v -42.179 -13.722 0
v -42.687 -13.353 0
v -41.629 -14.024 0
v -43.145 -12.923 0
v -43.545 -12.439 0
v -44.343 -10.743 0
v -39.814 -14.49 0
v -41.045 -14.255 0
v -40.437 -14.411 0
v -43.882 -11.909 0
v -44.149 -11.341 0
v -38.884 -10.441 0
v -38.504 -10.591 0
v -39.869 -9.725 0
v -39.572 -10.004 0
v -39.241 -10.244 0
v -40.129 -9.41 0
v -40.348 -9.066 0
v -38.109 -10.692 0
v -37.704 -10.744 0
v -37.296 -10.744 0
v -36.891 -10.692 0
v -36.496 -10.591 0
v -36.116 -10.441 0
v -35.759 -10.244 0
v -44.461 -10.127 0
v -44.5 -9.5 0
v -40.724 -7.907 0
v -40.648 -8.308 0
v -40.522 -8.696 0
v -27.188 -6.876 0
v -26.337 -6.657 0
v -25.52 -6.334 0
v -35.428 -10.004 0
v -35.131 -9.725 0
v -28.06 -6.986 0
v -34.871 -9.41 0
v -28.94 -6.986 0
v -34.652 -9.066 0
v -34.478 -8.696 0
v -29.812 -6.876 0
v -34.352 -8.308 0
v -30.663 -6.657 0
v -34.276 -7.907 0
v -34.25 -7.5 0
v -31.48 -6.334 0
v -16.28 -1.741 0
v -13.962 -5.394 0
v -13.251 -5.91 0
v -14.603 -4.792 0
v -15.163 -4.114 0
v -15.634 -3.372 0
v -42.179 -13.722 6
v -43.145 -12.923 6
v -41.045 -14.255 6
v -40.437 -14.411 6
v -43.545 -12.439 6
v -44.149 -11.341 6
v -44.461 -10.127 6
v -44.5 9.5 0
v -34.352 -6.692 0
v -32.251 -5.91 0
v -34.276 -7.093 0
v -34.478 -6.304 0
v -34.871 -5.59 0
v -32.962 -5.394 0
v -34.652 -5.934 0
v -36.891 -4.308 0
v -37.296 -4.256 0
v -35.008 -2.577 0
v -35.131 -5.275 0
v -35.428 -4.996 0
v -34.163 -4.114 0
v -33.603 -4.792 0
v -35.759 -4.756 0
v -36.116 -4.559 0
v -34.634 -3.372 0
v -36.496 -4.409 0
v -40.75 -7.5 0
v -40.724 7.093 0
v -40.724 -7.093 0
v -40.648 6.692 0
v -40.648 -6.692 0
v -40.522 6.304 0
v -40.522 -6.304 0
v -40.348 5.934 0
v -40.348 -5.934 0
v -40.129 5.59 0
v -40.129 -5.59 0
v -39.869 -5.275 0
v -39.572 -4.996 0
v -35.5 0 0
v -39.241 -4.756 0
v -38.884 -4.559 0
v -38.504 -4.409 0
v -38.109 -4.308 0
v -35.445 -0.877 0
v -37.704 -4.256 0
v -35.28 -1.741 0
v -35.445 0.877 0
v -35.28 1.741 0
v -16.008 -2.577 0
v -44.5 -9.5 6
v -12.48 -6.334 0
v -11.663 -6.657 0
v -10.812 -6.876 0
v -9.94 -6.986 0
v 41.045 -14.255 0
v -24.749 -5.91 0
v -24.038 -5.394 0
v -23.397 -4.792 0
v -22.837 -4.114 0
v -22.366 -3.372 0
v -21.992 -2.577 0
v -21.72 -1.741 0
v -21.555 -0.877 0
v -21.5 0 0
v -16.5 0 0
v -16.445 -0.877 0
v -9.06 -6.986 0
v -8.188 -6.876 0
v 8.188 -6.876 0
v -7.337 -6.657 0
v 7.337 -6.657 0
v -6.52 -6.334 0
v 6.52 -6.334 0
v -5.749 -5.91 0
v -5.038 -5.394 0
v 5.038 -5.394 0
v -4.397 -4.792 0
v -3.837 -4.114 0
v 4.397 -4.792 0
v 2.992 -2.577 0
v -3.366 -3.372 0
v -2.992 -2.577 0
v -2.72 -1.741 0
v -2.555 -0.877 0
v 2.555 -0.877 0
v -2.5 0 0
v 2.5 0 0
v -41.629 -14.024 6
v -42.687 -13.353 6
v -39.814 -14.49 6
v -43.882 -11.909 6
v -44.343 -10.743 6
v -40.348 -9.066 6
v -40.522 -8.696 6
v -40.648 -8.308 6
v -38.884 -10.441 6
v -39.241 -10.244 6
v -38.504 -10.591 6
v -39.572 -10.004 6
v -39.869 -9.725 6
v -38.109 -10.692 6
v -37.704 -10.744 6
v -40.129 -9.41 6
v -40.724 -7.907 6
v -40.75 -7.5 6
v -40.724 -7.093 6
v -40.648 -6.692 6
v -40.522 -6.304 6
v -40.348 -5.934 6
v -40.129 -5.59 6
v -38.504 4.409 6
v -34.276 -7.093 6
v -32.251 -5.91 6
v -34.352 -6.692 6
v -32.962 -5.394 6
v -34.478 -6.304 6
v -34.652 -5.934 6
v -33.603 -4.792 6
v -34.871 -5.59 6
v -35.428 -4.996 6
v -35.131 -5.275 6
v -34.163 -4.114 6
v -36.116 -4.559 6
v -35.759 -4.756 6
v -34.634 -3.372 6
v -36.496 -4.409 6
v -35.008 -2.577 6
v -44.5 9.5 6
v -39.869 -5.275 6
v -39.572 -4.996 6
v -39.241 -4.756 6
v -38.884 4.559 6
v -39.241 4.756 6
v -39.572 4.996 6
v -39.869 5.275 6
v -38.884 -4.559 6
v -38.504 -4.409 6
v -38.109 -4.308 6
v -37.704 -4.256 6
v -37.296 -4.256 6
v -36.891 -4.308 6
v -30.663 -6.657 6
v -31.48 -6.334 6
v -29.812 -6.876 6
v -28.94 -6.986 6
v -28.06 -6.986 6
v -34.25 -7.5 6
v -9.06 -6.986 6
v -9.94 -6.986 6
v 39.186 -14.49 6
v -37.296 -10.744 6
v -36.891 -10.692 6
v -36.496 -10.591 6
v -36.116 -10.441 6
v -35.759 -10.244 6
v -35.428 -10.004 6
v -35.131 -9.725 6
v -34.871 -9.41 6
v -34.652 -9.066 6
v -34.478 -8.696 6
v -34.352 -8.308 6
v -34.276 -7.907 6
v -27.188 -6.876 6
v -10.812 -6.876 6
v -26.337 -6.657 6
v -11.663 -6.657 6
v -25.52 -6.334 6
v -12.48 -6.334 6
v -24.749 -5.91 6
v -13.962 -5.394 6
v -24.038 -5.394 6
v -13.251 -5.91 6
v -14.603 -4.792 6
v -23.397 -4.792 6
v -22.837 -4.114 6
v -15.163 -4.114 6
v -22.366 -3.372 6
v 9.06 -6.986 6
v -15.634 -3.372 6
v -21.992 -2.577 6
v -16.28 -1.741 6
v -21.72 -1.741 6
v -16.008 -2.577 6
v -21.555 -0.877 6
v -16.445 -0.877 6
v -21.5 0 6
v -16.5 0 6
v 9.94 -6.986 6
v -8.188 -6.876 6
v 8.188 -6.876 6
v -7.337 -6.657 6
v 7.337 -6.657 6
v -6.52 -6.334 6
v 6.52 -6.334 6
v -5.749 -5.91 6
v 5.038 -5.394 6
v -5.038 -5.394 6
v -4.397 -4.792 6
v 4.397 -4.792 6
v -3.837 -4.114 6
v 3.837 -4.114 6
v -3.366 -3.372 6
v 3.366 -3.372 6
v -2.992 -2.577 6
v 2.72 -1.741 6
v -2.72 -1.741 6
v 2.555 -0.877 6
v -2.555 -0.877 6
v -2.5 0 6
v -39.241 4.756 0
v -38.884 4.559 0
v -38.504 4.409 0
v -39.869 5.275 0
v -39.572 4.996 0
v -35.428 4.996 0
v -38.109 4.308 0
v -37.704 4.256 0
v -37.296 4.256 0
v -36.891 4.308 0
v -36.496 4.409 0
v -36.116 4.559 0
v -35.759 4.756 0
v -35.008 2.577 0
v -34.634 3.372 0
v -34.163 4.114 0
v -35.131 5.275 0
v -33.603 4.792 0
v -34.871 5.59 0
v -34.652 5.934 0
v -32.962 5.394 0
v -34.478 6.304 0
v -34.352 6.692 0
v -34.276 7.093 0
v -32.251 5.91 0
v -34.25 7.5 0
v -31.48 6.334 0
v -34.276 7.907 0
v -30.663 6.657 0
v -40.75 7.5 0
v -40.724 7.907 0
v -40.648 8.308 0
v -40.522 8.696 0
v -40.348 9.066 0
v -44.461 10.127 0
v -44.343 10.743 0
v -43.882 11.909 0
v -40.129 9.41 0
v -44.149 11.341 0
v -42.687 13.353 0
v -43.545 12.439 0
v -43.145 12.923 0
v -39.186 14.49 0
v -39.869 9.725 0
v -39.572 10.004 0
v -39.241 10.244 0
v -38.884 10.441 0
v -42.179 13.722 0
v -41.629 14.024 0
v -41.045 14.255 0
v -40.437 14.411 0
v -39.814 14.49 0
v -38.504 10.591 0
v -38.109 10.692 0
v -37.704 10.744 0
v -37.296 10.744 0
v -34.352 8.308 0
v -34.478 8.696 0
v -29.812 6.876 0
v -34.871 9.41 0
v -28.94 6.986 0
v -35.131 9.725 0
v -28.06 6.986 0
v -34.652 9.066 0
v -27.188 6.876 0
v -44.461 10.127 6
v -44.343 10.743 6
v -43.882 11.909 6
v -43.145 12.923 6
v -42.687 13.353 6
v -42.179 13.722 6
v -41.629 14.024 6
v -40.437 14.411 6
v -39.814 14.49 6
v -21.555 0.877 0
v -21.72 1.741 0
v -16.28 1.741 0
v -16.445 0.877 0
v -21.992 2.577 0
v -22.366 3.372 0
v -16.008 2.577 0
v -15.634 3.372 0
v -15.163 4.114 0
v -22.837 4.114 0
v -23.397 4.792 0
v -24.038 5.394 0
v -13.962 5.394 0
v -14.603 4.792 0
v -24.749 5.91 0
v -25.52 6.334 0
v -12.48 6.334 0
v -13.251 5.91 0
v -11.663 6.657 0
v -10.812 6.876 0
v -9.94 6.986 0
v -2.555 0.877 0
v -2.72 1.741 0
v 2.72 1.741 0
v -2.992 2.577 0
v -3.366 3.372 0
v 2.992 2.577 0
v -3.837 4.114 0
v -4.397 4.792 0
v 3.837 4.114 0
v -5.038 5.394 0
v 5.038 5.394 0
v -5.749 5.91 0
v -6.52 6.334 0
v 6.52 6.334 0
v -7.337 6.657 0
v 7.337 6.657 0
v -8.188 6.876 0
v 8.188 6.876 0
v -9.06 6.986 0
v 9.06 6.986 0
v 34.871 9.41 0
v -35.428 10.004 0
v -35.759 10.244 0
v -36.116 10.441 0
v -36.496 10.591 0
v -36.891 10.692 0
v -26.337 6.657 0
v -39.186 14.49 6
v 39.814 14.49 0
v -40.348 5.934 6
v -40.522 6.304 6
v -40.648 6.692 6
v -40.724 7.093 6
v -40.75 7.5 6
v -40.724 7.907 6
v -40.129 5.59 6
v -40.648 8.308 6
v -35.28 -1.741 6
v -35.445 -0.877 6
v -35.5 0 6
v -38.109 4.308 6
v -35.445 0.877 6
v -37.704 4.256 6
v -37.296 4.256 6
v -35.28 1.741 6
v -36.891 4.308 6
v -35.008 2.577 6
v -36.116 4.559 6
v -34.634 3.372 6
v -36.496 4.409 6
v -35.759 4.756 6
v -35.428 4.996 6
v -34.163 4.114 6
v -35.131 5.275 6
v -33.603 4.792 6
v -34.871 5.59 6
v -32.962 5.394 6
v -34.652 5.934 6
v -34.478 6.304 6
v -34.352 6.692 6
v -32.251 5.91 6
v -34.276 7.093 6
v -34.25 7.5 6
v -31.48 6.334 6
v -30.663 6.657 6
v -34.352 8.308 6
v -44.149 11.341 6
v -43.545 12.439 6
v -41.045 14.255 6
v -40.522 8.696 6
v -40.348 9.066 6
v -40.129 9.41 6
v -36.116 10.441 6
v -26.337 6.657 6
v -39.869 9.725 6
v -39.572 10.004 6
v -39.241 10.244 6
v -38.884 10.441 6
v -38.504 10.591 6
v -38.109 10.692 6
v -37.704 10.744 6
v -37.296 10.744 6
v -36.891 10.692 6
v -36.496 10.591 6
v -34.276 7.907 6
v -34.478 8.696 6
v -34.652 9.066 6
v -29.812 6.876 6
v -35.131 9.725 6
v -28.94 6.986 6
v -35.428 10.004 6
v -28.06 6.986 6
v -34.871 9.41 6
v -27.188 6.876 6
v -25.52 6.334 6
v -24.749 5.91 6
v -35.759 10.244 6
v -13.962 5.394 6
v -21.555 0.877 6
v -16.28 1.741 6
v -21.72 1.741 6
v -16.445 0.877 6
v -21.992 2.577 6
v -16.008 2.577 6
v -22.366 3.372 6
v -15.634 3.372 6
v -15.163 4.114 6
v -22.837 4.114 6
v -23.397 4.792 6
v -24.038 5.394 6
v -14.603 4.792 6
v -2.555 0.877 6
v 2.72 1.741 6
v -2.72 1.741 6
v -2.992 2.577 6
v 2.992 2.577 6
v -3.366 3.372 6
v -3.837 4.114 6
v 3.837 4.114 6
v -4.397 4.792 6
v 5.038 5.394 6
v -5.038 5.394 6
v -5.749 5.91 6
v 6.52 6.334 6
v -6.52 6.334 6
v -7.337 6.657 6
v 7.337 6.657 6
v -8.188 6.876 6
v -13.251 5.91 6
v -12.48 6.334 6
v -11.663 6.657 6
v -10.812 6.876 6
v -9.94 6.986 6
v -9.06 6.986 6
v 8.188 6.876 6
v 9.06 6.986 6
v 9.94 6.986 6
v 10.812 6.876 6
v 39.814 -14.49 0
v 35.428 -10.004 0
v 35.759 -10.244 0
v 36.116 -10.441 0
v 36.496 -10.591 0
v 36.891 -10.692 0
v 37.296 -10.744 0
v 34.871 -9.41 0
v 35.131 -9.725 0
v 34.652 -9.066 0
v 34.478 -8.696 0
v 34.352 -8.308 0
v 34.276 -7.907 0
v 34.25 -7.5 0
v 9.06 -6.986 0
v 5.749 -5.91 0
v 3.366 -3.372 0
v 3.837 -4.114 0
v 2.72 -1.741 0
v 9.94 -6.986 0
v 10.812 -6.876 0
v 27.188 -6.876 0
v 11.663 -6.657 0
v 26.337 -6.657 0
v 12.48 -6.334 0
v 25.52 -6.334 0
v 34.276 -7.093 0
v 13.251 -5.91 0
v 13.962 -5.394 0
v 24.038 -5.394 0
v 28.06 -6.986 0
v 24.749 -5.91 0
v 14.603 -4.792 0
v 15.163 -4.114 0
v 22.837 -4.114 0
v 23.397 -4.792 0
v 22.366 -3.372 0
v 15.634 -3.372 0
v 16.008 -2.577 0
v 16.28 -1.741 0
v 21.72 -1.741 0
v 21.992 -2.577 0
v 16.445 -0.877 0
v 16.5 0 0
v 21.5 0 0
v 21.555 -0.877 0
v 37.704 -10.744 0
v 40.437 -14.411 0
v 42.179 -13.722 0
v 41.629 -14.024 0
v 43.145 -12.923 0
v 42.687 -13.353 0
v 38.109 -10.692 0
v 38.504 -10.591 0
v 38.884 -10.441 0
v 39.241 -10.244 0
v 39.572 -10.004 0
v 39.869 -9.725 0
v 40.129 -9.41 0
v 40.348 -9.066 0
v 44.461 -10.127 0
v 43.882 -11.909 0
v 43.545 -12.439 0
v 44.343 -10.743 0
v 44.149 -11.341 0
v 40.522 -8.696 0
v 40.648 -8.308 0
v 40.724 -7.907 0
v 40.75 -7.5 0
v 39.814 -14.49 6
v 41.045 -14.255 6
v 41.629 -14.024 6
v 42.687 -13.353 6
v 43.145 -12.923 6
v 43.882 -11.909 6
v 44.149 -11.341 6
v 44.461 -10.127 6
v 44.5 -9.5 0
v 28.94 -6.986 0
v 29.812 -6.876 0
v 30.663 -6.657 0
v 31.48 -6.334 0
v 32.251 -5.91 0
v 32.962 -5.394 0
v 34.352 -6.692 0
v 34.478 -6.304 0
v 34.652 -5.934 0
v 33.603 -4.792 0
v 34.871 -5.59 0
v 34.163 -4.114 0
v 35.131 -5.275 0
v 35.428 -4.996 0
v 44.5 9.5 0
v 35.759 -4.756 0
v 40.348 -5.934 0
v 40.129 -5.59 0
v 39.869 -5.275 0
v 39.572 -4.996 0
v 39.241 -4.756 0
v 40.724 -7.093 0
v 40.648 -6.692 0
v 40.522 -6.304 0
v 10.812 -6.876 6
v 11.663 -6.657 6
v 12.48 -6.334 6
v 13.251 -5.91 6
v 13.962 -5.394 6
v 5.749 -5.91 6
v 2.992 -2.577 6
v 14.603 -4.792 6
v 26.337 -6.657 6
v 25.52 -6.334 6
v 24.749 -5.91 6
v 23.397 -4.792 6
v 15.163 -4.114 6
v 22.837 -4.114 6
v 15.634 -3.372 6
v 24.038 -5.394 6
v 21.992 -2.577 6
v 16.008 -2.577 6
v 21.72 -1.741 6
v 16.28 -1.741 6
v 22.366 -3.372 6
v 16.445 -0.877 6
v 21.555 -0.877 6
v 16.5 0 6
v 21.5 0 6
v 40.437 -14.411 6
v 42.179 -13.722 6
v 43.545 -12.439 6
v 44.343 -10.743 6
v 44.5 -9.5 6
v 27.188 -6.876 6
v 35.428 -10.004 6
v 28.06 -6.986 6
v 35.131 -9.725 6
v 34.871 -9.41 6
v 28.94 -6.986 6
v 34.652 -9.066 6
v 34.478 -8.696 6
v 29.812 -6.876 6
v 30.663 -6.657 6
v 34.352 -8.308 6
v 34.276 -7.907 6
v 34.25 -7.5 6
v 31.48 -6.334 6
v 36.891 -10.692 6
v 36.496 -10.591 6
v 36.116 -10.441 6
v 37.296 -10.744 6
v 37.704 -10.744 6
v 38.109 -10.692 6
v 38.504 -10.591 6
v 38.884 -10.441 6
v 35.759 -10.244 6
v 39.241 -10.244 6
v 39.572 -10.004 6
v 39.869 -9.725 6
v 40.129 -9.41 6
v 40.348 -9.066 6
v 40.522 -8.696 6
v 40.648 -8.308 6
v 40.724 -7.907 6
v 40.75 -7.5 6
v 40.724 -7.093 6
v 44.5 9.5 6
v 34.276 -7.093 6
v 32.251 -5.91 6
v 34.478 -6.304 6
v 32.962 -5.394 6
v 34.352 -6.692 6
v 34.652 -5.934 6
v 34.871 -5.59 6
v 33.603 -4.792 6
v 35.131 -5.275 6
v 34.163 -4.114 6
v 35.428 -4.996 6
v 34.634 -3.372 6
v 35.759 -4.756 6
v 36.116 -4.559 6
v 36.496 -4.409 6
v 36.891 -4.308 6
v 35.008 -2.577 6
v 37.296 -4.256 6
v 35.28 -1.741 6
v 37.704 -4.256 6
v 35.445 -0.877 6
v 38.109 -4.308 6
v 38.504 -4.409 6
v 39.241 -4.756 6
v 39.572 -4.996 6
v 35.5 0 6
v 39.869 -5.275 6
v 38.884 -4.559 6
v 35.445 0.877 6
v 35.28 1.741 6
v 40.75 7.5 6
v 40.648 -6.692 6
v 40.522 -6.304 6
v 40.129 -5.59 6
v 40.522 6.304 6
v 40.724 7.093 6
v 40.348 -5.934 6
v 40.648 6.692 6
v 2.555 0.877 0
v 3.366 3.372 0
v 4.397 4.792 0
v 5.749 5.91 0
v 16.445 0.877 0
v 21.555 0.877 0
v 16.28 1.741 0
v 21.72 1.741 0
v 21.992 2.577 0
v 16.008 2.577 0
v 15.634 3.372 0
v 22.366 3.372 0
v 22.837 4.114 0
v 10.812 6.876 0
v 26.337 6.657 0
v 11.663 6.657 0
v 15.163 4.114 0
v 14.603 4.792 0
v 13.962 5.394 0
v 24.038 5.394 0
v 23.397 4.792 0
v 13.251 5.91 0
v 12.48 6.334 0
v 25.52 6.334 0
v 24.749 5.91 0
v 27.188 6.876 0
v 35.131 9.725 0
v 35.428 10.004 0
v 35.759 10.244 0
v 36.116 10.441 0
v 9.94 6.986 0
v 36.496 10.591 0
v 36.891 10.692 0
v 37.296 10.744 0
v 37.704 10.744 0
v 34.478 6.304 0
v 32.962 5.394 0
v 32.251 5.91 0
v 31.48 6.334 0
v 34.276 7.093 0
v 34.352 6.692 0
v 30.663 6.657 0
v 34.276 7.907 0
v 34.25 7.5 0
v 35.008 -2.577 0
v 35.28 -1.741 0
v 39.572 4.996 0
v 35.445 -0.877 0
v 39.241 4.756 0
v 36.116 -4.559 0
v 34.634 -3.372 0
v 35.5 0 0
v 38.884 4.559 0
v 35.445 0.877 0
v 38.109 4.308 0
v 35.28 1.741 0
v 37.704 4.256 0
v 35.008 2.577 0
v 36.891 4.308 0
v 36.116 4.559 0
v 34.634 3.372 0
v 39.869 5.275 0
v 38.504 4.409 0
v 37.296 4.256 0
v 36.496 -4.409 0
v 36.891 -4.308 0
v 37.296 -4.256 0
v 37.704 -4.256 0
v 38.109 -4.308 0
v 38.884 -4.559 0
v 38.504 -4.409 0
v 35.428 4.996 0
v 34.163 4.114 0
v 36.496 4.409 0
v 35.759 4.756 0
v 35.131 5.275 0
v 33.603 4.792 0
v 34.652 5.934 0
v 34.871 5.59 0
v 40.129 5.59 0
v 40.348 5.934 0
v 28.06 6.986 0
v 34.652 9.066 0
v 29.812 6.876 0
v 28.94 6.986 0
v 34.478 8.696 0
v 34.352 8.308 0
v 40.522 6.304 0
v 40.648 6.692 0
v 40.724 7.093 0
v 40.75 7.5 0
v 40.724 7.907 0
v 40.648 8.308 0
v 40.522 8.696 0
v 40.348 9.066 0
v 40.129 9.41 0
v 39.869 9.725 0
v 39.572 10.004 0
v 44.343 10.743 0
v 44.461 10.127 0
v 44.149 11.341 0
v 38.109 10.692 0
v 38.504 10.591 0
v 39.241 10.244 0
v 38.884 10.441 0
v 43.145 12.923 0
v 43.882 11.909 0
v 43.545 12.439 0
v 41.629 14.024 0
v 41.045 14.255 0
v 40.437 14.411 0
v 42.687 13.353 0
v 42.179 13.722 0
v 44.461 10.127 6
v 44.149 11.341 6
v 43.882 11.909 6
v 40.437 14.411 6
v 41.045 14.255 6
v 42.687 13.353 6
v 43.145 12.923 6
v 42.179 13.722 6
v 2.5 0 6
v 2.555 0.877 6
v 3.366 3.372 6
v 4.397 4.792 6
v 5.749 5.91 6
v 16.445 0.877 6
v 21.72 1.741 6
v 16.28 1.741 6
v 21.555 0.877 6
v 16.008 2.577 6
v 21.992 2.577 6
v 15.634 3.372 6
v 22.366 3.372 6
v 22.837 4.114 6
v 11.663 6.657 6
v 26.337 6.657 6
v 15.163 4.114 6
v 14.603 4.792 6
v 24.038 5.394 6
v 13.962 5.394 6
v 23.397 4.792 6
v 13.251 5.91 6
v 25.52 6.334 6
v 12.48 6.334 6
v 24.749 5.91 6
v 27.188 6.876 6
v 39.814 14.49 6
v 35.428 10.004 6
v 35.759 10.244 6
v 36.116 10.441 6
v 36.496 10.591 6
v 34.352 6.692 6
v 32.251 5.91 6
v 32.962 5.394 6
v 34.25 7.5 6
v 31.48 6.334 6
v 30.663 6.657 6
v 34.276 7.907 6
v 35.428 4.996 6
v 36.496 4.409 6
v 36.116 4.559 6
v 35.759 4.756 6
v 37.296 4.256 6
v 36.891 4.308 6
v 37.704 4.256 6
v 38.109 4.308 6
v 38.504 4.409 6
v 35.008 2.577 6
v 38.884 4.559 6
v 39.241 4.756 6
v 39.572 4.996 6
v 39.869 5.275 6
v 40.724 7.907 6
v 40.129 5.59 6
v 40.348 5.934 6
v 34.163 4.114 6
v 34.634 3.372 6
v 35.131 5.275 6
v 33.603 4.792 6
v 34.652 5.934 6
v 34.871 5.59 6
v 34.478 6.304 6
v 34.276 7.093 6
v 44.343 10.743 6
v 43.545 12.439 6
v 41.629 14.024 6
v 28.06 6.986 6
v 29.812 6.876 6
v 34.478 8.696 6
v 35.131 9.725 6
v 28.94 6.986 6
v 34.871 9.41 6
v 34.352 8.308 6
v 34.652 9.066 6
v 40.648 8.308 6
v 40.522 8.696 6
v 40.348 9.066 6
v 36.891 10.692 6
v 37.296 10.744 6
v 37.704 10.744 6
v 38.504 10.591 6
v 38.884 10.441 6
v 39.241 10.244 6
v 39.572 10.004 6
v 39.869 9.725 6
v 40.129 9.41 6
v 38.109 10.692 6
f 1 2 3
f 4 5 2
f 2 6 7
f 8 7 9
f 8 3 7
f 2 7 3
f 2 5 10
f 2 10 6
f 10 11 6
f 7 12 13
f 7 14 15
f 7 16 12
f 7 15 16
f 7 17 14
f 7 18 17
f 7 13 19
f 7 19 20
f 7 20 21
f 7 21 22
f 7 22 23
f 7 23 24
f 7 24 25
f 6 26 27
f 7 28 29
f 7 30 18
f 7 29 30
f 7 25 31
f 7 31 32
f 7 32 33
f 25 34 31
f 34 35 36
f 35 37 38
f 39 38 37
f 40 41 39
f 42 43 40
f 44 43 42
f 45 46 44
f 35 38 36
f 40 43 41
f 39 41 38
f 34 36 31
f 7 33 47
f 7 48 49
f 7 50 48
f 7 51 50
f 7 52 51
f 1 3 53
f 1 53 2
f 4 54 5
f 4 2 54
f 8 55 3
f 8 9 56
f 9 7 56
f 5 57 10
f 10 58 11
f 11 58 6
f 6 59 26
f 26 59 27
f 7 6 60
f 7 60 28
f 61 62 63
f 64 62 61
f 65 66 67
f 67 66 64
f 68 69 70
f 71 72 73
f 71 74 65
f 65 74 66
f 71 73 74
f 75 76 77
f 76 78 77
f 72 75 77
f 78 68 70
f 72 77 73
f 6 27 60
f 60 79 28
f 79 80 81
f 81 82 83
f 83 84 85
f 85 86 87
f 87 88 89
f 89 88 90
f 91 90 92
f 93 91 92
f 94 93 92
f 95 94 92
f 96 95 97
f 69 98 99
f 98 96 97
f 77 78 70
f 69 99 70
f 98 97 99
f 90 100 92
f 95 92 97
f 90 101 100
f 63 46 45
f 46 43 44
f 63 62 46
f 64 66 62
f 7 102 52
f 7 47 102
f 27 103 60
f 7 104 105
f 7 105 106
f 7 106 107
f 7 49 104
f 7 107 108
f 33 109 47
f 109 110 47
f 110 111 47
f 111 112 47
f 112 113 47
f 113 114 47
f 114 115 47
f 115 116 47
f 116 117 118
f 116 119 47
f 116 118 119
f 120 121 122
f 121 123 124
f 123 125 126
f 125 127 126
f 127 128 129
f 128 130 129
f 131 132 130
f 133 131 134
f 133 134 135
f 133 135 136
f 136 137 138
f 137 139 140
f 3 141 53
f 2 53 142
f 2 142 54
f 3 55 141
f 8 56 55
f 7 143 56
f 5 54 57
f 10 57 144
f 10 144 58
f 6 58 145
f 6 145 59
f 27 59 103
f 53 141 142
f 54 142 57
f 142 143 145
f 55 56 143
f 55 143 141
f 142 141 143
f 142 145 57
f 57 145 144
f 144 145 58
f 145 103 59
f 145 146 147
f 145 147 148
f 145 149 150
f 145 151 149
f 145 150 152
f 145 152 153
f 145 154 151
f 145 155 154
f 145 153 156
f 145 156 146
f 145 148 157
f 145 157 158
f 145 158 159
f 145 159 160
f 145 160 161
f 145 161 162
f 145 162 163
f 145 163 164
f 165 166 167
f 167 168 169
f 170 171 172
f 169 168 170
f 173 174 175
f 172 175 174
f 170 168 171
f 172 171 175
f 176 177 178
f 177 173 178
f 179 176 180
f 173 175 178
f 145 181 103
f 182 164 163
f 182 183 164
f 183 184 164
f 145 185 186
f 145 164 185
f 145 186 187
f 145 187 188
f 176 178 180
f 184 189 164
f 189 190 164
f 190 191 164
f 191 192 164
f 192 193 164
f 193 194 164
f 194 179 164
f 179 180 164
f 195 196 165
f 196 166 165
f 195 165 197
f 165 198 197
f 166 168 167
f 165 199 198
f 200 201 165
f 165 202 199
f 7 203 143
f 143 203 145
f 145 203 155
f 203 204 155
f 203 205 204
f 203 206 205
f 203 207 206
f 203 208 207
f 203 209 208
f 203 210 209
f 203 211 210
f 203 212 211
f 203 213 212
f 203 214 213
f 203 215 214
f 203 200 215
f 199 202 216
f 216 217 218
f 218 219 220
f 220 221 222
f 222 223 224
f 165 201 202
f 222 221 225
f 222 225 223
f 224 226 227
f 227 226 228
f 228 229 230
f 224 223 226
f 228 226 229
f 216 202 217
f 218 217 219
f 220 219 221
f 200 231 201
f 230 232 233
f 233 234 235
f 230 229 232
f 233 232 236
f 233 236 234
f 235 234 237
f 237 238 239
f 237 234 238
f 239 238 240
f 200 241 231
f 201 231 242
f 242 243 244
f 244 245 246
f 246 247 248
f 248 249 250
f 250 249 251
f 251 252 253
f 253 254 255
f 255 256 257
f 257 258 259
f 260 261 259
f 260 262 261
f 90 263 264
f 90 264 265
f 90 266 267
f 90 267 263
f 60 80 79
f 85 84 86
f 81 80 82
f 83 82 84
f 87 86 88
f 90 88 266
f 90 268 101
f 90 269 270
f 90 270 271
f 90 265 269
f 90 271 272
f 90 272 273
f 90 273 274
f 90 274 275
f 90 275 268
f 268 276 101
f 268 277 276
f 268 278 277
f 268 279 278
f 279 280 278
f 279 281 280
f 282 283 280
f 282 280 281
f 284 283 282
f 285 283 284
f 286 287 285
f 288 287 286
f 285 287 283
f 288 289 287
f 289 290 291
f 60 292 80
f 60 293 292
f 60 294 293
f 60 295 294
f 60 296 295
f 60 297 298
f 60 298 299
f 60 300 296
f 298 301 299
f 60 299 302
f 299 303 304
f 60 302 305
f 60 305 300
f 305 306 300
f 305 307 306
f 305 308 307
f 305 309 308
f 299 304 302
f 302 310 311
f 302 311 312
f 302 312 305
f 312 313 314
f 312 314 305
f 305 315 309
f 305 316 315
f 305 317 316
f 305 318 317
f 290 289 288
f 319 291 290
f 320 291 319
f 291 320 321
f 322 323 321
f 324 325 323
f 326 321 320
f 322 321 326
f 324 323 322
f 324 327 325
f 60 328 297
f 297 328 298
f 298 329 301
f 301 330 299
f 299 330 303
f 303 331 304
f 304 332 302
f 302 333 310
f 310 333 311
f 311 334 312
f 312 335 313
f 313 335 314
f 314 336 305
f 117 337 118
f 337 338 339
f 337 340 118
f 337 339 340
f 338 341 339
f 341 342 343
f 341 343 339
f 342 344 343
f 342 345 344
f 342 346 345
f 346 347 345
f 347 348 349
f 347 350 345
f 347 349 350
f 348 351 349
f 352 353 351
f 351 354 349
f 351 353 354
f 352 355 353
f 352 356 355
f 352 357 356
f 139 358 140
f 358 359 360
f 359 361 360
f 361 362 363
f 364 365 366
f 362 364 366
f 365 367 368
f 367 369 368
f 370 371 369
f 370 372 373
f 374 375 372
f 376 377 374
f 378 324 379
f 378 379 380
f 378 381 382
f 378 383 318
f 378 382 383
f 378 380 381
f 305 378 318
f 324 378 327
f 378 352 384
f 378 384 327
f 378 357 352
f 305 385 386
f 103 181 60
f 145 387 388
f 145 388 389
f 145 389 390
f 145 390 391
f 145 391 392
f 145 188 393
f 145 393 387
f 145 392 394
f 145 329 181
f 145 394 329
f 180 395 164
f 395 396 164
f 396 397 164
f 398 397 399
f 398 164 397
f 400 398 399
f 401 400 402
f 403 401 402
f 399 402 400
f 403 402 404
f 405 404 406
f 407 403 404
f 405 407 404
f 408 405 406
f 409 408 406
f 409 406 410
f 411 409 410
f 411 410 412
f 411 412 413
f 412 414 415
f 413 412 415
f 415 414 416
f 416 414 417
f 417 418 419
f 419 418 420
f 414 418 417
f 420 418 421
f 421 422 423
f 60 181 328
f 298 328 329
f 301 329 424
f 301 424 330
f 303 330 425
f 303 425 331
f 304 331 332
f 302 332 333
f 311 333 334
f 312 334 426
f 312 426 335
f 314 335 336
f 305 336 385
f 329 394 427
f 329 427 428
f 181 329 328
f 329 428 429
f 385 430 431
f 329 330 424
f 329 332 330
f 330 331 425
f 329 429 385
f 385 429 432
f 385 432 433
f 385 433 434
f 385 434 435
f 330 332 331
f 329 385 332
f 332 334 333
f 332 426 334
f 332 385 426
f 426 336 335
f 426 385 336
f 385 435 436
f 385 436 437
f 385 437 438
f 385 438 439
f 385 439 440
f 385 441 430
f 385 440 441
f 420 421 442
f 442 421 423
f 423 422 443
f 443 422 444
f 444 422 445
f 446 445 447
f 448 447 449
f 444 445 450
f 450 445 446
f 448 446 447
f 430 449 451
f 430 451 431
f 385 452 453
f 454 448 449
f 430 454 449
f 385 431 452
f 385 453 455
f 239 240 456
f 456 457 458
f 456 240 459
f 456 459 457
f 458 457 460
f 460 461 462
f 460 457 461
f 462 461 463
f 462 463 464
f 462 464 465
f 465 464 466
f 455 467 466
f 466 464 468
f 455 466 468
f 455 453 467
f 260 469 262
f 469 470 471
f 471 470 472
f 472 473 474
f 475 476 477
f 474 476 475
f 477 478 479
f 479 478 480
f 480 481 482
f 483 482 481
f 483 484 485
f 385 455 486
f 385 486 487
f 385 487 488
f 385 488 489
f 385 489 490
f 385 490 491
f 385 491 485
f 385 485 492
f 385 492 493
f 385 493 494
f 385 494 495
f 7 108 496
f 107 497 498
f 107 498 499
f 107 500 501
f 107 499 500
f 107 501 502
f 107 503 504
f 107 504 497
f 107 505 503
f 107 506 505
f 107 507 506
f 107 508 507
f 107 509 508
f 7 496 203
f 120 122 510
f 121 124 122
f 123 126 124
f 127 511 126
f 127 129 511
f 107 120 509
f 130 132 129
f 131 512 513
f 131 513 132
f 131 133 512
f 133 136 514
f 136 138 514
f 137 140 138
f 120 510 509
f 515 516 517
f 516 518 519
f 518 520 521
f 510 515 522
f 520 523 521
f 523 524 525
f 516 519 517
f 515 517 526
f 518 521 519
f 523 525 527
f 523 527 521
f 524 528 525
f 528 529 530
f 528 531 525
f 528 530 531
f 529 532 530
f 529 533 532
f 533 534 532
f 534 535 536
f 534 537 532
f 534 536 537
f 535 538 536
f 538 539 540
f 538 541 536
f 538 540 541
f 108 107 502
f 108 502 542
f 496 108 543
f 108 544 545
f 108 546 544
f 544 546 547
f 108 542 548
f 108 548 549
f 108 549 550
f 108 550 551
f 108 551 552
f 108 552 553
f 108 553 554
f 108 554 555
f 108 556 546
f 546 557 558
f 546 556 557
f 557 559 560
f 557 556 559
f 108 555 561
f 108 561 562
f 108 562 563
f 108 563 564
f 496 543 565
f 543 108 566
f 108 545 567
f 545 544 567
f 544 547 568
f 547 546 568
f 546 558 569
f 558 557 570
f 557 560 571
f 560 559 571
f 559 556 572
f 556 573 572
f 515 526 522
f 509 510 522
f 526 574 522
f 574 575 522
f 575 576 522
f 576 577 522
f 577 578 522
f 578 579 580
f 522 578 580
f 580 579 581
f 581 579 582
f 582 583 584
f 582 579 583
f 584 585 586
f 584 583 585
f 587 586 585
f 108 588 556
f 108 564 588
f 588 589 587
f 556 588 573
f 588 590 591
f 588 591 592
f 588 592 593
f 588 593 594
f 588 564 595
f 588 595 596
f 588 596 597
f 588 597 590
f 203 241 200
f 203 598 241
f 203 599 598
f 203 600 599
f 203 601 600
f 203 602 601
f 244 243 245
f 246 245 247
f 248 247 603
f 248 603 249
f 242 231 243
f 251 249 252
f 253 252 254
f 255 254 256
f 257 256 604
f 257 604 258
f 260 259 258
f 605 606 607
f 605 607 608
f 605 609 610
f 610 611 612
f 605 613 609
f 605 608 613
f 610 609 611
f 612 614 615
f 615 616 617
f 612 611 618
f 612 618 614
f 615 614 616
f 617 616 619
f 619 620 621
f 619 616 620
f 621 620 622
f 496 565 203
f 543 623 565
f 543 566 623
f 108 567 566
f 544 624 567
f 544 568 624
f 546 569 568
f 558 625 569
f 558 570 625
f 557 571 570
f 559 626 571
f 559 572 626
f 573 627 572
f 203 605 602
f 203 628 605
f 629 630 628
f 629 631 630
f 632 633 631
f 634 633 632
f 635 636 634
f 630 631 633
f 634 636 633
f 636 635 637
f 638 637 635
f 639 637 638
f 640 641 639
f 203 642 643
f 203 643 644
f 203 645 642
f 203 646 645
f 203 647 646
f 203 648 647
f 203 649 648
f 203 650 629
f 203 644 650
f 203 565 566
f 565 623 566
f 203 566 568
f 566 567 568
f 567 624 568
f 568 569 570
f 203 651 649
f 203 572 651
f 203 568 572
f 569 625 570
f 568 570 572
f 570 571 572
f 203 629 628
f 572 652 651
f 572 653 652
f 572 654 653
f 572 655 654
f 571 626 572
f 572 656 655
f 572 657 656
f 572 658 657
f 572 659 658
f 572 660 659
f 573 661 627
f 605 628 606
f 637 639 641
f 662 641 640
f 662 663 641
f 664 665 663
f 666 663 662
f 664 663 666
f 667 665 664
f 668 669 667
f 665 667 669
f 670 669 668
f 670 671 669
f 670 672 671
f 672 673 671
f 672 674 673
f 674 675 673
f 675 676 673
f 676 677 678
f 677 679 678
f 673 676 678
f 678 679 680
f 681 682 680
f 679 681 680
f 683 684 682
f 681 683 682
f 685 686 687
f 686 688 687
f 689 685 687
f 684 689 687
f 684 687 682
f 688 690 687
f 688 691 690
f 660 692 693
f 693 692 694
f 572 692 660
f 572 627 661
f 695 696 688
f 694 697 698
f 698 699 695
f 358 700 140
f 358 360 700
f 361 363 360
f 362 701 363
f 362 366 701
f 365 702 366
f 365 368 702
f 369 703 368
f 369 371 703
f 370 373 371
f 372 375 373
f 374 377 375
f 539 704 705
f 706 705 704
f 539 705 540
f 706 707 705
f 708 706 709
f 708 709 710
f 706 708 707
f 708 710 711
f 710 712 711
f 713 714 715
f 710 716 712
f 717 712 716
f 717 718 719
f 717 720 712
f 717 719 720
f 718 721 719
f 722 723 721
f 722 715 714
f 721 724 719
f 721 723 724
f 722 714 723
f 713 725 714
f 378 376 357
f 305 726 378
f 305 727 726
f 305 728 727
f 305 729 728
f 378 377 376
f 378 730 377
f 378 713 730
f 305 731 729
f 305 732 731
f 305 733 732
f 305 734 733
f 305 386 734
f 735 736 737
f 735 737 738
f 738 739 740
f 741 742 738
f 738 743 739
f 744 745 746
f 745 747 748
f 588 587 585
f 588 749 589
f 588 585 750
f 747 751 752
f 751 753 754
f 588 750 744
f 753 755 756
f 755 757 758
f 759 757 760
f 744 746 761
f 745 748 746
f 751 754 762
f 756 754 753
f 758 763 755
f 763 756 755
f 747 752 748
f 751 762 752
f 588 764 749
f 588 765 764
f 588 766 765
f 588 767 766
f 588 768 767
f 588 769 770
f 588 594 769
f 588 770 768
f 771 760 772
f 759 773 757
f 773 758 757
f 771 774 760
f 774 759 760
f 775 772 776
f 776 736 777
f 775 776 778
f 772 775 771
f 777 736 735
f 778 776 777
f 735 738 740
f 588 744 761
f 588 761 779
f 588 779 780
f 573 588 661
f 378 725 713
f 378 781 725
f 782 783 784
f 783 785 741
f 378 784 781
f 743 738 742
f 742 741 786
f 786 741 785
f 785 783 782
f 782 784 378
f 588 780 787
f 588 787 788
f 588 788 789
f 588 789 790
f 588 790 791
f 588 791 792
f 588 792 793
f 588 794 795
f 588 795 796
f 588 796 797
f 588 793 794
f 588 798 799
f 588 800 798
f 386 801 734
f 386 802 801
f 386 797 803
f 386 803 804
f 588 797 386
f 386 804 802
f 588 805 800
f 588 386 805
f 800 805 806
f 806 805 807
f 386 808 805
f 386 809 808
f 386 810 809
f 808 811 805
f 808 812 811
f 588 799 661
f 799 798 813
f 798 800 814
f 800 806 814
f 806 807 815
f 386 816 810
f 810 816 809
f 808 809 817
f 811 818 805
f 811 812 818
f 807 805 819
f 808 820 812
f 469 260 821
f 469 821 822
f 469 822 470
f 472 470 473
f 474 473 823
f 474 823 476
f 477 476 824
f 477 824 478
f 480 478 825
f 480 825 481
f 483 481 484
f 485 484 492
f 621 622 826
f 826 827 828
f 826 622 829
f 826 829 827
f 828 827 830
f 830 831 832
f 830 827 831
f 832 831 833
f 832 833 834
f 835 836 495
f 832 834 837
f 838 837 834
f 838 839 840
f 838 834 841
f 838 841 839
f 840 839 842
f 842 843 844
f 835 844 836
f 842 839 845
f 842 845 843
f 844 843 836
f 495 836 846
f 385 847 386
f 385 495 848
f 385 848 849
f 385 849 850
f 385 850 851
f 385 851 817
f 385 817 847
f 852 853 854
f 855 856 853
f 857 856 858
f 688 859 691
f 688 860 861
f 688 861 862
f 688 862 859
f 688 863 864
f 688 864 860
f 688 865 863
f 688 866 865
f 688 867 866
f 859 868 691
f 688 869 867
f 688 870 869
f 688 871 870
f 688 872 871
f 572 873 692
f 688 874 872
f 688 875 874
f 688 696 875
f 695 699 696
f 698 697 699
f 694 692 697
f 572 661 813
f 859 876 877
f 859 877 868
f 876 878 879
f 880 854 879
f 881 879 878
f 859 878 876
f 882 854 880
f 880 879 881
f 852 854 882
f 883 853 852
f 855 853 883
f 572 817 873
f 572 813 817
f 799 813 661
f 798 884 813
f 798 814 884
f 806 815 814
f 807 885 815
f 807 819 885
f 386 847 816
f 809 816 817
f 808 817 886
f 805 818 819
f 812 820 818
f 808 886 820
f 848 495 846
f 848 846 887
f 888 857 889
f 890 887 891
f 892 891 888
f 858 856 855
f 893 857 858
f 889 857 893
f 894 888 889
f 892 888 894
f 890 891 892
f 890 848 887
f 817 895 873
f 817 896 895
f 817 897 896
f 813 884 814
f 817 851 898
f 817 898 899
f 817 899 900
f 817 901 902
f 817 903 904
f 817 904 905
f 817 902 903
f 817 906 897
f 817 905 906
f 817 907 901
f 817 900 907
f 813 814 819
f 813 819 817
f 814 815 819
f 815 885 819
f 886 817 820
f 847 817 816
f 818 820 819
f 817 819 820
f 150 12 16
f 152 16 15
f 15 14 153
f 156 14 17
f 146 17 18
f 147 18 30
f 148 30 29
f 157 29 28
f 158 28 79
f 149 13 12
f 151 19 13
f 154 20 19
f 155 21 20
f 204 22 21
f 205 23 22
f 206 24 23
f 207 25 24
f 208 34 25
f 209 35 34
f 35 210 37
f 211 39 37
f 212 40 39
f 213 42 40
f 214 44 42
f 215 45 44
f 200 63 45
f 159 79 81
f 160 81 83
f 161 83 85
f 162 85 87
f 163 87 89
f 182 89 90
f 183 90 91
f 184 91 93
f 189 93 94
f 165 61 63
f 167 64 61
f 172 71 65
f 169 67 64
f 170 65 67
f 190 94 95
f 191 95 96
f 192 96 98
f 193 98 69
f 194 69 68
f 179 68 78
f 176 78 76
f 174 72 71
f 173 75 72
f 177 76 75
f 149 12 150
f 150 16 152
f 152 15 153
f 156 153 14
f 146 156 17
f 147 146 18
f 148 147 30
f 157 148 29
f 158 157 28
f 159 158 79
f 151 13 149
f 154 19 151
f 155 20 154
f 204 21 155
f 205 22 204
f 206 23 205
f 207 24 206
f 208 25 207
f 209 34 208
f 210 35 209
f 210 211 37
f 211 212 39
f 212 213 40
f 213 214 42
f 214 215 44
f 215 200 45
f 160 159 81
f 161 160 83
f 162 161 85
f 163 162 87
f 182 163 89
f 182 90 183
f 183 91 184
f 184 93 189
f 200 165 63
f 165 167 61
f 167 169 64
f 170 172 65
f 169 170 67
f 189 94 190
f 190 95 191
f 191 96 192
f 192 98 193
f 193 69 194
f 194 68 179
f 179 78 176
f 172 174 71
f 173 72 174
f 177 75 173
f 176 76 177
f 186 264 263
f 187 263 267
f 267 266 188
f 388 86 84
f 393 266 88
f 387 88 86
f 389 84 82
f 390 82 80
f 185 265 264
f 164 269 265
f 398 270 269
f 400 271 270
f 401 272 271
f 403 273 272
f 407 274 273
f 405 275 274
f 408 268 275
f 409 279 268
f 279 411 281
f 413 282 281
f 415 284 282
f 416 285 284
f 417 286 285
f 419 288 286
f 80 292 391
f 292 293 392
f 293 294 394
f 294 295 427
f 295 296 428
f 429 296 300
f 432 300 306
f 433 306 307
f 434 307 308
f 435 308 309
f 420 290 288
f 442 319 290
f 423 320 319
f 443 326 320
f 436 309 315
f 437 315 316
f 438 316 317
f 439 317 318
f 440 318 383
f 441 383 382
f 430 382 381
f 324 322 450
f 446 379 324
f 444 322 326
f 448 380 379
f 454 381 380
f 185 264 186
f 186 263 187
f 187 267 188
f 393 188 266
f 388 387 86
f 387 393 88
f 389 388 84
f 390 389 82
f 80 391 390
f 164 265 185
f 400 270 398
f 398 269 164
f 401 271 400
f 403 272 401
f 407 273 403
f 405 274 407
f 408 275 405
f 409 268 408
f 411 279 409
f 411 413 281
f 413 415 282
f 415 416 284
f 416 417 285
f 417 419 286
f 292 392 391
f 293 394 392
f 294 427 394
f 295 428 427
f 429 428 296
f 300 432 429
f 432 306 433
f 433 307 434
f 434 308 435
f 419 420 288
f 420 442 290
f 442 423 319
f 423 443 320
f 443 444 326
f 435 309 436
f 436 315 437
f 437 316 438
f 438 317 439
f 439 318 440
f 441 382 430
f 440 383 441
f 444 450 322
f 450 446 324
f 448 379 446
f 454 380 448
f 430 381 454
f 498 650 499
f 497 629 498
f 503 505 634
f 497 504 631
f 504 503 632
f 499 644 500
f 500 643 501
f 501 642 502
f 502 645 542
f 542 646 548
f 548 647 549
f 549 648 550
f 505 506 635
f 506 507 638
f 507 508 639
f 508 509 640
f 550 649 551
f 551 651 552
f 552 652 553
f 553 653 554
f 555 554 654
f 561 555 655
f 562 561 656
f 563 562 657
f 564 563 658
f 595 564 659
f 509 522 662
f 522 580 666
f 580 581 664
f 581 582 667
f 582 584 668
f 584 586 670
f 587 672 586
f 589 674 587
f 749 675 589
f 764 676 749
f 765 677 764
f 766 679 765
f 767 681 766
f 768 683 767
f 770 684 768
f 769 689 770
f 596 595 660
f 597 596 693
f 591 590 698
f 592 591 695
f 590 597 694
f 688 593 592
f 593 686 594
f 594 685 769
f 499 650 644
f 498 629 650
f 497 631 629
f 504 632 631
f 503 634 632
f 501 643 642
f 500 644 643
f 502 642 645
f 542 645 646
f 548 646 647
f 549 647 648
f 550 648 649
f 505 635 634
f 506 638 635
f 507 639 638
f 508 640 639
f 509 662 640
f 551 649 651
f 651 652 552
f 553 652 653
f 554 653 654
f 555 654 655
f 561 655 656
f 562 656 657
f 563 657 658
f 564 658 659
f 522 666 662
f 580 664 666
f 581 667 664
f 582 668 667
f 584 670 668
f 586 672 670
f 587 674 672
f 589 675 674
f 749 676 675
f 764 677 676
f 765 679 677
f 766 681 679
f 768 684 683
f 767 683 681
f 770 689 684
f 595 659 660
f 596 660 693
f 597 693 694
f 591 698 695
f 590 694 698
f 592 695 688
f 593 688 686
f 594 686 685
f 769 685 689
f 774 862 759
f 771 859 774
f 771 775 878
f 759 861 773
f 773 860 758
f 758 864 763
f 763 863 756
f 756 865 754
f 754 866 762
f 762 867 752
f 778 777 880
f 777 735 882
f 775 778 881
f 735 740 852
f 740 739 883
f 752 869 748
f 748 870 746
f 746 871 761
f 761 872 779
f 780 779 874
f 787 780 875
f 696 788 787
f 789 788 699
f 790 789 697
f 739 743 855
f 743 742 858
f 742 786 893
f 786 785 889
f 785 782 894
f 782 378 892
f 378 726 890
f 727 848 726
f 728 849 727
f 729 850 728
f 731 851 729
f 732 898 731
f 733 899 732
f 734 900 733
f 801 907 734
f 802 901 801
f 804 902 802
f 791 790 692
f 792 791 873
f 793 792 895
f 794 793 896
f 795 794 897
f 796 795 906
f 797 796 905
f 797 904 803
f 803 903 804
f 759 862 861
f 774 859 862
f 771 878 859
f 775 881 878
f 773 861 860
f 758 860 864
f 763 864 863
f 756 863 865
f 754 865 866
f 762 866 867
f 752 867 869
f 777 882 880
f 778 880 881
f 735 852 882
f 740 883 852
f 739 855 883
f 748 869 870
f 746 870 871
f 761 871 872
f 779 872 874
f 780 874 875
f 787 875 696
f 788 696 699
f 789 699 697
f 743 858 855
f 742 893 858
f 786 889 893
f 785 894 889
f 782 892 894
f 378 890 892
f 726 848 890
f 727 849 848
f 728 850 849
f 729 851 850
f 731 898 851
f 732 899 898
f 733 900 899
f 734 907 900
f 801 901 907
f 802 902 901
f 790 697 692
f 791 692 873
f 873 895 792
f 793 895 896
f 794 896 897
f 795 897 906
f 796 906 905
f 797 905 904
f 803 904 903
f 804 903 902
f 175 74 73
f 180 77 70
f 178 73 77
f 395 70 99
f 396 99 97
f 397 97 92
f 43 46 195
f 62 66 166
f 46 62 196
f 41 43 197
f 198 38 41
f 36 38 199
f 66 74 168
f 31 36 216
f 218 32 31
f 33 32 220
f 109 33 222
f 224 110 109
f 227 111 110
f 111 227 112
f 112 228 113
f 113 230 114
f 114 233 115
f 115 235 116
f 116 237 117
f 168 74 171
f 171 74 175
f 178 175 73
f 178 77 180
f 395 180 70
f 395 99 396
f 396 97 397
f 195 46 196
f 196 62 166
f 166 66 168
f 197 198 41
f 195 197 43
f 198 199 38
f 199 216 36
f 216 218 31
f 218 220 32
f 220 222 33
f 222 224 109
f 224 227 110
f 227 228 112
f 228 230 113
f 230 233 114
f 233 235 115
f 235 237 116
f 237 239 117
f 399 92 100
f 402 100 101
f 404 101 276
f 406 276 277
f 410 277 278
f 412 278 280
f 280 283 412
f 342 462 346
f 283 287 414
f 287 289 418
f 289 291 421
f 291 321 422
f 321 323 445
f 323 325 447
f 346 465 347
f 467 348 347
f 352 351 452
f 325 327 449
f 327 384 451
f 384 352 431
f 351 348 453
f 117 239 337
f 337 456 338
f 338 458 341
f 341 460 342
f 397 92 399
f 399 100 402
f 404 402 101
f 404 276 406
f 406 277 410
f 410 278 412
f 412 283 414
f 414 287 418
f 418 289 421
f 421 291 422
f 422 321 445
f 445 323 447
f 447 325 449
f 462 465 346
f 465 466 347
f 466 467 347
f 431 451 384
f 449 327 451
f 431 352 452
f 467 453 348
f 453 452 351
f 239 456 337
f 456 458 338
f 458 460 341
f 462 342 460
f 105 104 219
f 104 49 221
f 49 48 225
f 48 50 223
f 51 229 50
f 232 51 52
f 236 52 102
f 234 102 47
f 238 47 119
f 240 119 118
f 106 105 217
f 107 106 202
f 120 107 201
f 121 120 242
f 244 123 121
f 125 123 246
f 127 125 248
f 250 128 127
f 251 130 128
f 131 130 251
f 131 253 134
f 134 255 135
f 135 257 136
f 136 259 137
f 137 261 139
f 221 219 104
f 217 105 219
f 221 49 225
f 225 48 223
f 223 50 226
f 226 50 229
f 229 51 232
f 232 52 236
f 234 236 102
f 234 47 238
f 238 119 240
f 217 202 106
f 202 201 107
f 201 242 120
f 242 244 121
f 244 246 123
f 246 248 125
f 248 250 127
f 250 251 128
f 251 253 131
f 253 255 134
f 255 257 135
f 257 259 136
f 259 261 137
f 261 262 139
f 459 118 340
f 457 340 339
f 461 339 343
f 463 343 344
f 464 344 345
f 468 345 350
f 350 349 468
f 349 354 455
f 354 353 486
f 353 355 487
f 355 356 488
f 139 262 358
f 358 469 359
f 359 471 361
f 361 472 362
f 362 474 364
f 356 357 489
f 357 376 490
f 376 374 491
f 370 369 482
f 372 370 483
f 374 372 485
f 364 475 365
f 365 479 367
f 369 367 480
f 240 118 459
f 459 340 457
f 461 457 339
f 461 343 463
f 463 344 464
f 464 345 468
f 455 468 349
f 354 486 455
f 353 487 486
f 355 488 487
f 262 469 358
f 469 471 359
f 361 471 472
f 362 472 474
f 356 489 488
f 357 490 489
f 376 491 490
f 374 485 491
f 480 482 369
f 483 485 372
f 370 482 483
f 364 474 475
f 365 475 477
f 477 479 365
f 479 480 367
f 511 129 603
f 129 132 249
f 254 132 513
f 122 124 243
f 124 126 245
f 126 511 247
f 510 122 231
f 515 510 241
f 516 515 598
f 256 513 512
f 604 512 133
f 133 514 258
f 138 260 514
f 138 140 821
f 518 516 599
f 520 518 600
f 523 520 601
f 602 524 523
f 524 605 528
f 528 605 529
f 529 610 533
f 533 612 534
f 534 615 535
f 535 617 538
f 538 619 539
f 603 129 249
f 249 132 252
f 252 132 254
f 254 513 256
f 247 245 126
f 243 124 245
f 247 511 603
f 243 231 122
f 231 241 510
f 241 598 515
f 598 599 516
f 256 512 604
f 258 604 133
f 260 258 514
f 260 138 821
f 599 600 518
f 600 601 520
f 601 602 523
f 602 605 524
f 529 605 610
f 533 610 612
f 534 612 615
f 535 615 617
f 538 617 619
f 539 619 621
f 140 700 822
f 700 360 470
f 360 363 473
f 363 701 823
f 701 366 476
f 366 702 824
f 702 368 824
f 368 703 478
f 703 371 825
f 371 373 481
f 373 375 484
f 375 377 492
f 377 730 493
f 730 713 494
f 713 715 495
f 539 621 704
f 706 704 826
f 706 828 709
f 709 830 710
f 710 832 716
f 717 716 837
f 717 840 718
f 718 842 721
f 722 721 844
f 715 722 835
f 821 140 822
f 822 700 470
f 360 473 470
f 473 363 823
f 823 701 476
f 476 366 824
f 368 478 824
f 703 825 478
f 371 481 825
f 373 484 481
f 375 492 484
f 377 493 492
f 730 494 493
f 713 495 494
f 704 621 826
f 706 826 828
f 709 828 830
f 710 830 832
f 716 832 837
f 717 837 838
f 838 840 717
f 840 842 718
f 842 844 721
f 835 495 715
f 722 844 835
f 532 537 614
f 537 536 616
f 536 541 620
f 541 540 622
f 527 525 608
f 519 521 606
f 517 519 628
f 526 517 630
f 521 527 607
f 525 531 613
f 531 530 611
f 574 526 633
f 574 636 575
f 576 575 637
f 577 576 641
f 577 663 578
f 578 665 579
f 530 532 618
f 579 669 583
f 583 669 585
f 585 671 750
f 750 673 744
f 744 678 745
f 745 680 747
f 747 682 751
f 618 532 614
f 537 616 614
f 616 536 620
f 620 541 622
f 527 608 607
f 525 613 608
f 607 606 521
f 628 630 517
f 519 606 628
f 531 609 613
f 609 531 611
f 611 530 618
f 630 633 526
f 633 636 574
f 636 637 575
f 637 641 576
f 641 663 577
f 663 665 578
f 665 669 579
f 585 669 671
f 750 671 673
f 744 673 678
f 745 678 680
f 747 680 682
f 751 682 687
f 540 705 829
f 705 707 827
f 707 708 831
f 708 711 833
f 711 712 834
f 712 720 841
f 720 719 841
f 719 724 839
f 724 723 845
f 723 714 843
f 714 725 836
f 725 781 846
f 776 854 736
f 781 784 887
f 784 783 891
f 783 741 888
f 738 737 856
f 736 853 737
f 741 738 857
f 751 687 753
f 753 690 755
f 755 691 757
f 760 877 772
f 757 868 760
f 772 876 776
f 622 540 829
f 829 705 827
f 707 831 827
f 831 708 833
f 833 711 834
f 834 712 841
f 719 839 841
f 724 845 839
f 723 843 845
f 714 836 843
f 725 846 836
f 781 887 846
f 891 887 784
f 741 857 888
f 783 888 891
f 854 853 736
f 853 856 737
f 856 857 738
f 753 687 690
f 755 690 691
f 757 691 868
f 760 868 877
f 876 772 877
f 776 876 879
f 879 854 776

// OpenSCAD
$fn = 50;

difference() {
	union() {
		hull() {
			translate(v = [-39.5, 9.5, 0]) {
				cylinder(h = 6, r = 5);
			}
			translate(v = [39.5, 9.5, 0]) {
				cylinder(h = 6, r = 5);
			}
			translate(v = [-39.5, -9.5, 0]) {
				cylinder(h = 6, r = 5);
			}
			translate(v = [39.5, -9.5, 0]) {
				cylinder(h = 6, r = 5);
			}
		}
	}
	union() {
		translate(v = [-37.5, -7.5, -100.0]) {
			cylinder(h = 200, r = 3.25);
		}
		translate(v = [-37.5, 7.5, -100.0]) {
			cylinder(h = 200, r = 3.25);
		}
		translate(v = [37.5, -7.5, -100.0]) {
			cylinder(h = 200, r = 3.25);
		}
		translate(v = [37.5, 7.5, -100.0]) {
			cylinder(h = 200, r = 3.25);
		}
		translate(v = [-37.5, -7.5, -100.0]) {
			cylinder(h = 200, r = 1.8);
		}
		translate(v = [-37.5, 7.5, -100.0]) {
			cylinder(h = 200, r = 1.8);
		}
		translate(v = [37.5, -7.5, -100.0]) {
			cylinder(h = 200, r = 1.8);
		}
		translate(v = [37.5, 7.5, -100.0]) {
			cylinder(h = 200, r = 1.8);
		}
		translate(v = [-28.5, 0, 0.0]) {
			cylinder(h = 6, r = 7.0);
		}
		translate(v = [-9.5, 0, 0.0]) {
			cylinder(h = 6, r = 7.0);
		}
		translate(v = [9.5, 0, 0.0]) {
			cylinder(h = 6, r = 7.0);
		}
		translate(v = [28.5, 0, 0.0]) {
			cylinder(h = 6, r = 7.0);
		}
	}
}
